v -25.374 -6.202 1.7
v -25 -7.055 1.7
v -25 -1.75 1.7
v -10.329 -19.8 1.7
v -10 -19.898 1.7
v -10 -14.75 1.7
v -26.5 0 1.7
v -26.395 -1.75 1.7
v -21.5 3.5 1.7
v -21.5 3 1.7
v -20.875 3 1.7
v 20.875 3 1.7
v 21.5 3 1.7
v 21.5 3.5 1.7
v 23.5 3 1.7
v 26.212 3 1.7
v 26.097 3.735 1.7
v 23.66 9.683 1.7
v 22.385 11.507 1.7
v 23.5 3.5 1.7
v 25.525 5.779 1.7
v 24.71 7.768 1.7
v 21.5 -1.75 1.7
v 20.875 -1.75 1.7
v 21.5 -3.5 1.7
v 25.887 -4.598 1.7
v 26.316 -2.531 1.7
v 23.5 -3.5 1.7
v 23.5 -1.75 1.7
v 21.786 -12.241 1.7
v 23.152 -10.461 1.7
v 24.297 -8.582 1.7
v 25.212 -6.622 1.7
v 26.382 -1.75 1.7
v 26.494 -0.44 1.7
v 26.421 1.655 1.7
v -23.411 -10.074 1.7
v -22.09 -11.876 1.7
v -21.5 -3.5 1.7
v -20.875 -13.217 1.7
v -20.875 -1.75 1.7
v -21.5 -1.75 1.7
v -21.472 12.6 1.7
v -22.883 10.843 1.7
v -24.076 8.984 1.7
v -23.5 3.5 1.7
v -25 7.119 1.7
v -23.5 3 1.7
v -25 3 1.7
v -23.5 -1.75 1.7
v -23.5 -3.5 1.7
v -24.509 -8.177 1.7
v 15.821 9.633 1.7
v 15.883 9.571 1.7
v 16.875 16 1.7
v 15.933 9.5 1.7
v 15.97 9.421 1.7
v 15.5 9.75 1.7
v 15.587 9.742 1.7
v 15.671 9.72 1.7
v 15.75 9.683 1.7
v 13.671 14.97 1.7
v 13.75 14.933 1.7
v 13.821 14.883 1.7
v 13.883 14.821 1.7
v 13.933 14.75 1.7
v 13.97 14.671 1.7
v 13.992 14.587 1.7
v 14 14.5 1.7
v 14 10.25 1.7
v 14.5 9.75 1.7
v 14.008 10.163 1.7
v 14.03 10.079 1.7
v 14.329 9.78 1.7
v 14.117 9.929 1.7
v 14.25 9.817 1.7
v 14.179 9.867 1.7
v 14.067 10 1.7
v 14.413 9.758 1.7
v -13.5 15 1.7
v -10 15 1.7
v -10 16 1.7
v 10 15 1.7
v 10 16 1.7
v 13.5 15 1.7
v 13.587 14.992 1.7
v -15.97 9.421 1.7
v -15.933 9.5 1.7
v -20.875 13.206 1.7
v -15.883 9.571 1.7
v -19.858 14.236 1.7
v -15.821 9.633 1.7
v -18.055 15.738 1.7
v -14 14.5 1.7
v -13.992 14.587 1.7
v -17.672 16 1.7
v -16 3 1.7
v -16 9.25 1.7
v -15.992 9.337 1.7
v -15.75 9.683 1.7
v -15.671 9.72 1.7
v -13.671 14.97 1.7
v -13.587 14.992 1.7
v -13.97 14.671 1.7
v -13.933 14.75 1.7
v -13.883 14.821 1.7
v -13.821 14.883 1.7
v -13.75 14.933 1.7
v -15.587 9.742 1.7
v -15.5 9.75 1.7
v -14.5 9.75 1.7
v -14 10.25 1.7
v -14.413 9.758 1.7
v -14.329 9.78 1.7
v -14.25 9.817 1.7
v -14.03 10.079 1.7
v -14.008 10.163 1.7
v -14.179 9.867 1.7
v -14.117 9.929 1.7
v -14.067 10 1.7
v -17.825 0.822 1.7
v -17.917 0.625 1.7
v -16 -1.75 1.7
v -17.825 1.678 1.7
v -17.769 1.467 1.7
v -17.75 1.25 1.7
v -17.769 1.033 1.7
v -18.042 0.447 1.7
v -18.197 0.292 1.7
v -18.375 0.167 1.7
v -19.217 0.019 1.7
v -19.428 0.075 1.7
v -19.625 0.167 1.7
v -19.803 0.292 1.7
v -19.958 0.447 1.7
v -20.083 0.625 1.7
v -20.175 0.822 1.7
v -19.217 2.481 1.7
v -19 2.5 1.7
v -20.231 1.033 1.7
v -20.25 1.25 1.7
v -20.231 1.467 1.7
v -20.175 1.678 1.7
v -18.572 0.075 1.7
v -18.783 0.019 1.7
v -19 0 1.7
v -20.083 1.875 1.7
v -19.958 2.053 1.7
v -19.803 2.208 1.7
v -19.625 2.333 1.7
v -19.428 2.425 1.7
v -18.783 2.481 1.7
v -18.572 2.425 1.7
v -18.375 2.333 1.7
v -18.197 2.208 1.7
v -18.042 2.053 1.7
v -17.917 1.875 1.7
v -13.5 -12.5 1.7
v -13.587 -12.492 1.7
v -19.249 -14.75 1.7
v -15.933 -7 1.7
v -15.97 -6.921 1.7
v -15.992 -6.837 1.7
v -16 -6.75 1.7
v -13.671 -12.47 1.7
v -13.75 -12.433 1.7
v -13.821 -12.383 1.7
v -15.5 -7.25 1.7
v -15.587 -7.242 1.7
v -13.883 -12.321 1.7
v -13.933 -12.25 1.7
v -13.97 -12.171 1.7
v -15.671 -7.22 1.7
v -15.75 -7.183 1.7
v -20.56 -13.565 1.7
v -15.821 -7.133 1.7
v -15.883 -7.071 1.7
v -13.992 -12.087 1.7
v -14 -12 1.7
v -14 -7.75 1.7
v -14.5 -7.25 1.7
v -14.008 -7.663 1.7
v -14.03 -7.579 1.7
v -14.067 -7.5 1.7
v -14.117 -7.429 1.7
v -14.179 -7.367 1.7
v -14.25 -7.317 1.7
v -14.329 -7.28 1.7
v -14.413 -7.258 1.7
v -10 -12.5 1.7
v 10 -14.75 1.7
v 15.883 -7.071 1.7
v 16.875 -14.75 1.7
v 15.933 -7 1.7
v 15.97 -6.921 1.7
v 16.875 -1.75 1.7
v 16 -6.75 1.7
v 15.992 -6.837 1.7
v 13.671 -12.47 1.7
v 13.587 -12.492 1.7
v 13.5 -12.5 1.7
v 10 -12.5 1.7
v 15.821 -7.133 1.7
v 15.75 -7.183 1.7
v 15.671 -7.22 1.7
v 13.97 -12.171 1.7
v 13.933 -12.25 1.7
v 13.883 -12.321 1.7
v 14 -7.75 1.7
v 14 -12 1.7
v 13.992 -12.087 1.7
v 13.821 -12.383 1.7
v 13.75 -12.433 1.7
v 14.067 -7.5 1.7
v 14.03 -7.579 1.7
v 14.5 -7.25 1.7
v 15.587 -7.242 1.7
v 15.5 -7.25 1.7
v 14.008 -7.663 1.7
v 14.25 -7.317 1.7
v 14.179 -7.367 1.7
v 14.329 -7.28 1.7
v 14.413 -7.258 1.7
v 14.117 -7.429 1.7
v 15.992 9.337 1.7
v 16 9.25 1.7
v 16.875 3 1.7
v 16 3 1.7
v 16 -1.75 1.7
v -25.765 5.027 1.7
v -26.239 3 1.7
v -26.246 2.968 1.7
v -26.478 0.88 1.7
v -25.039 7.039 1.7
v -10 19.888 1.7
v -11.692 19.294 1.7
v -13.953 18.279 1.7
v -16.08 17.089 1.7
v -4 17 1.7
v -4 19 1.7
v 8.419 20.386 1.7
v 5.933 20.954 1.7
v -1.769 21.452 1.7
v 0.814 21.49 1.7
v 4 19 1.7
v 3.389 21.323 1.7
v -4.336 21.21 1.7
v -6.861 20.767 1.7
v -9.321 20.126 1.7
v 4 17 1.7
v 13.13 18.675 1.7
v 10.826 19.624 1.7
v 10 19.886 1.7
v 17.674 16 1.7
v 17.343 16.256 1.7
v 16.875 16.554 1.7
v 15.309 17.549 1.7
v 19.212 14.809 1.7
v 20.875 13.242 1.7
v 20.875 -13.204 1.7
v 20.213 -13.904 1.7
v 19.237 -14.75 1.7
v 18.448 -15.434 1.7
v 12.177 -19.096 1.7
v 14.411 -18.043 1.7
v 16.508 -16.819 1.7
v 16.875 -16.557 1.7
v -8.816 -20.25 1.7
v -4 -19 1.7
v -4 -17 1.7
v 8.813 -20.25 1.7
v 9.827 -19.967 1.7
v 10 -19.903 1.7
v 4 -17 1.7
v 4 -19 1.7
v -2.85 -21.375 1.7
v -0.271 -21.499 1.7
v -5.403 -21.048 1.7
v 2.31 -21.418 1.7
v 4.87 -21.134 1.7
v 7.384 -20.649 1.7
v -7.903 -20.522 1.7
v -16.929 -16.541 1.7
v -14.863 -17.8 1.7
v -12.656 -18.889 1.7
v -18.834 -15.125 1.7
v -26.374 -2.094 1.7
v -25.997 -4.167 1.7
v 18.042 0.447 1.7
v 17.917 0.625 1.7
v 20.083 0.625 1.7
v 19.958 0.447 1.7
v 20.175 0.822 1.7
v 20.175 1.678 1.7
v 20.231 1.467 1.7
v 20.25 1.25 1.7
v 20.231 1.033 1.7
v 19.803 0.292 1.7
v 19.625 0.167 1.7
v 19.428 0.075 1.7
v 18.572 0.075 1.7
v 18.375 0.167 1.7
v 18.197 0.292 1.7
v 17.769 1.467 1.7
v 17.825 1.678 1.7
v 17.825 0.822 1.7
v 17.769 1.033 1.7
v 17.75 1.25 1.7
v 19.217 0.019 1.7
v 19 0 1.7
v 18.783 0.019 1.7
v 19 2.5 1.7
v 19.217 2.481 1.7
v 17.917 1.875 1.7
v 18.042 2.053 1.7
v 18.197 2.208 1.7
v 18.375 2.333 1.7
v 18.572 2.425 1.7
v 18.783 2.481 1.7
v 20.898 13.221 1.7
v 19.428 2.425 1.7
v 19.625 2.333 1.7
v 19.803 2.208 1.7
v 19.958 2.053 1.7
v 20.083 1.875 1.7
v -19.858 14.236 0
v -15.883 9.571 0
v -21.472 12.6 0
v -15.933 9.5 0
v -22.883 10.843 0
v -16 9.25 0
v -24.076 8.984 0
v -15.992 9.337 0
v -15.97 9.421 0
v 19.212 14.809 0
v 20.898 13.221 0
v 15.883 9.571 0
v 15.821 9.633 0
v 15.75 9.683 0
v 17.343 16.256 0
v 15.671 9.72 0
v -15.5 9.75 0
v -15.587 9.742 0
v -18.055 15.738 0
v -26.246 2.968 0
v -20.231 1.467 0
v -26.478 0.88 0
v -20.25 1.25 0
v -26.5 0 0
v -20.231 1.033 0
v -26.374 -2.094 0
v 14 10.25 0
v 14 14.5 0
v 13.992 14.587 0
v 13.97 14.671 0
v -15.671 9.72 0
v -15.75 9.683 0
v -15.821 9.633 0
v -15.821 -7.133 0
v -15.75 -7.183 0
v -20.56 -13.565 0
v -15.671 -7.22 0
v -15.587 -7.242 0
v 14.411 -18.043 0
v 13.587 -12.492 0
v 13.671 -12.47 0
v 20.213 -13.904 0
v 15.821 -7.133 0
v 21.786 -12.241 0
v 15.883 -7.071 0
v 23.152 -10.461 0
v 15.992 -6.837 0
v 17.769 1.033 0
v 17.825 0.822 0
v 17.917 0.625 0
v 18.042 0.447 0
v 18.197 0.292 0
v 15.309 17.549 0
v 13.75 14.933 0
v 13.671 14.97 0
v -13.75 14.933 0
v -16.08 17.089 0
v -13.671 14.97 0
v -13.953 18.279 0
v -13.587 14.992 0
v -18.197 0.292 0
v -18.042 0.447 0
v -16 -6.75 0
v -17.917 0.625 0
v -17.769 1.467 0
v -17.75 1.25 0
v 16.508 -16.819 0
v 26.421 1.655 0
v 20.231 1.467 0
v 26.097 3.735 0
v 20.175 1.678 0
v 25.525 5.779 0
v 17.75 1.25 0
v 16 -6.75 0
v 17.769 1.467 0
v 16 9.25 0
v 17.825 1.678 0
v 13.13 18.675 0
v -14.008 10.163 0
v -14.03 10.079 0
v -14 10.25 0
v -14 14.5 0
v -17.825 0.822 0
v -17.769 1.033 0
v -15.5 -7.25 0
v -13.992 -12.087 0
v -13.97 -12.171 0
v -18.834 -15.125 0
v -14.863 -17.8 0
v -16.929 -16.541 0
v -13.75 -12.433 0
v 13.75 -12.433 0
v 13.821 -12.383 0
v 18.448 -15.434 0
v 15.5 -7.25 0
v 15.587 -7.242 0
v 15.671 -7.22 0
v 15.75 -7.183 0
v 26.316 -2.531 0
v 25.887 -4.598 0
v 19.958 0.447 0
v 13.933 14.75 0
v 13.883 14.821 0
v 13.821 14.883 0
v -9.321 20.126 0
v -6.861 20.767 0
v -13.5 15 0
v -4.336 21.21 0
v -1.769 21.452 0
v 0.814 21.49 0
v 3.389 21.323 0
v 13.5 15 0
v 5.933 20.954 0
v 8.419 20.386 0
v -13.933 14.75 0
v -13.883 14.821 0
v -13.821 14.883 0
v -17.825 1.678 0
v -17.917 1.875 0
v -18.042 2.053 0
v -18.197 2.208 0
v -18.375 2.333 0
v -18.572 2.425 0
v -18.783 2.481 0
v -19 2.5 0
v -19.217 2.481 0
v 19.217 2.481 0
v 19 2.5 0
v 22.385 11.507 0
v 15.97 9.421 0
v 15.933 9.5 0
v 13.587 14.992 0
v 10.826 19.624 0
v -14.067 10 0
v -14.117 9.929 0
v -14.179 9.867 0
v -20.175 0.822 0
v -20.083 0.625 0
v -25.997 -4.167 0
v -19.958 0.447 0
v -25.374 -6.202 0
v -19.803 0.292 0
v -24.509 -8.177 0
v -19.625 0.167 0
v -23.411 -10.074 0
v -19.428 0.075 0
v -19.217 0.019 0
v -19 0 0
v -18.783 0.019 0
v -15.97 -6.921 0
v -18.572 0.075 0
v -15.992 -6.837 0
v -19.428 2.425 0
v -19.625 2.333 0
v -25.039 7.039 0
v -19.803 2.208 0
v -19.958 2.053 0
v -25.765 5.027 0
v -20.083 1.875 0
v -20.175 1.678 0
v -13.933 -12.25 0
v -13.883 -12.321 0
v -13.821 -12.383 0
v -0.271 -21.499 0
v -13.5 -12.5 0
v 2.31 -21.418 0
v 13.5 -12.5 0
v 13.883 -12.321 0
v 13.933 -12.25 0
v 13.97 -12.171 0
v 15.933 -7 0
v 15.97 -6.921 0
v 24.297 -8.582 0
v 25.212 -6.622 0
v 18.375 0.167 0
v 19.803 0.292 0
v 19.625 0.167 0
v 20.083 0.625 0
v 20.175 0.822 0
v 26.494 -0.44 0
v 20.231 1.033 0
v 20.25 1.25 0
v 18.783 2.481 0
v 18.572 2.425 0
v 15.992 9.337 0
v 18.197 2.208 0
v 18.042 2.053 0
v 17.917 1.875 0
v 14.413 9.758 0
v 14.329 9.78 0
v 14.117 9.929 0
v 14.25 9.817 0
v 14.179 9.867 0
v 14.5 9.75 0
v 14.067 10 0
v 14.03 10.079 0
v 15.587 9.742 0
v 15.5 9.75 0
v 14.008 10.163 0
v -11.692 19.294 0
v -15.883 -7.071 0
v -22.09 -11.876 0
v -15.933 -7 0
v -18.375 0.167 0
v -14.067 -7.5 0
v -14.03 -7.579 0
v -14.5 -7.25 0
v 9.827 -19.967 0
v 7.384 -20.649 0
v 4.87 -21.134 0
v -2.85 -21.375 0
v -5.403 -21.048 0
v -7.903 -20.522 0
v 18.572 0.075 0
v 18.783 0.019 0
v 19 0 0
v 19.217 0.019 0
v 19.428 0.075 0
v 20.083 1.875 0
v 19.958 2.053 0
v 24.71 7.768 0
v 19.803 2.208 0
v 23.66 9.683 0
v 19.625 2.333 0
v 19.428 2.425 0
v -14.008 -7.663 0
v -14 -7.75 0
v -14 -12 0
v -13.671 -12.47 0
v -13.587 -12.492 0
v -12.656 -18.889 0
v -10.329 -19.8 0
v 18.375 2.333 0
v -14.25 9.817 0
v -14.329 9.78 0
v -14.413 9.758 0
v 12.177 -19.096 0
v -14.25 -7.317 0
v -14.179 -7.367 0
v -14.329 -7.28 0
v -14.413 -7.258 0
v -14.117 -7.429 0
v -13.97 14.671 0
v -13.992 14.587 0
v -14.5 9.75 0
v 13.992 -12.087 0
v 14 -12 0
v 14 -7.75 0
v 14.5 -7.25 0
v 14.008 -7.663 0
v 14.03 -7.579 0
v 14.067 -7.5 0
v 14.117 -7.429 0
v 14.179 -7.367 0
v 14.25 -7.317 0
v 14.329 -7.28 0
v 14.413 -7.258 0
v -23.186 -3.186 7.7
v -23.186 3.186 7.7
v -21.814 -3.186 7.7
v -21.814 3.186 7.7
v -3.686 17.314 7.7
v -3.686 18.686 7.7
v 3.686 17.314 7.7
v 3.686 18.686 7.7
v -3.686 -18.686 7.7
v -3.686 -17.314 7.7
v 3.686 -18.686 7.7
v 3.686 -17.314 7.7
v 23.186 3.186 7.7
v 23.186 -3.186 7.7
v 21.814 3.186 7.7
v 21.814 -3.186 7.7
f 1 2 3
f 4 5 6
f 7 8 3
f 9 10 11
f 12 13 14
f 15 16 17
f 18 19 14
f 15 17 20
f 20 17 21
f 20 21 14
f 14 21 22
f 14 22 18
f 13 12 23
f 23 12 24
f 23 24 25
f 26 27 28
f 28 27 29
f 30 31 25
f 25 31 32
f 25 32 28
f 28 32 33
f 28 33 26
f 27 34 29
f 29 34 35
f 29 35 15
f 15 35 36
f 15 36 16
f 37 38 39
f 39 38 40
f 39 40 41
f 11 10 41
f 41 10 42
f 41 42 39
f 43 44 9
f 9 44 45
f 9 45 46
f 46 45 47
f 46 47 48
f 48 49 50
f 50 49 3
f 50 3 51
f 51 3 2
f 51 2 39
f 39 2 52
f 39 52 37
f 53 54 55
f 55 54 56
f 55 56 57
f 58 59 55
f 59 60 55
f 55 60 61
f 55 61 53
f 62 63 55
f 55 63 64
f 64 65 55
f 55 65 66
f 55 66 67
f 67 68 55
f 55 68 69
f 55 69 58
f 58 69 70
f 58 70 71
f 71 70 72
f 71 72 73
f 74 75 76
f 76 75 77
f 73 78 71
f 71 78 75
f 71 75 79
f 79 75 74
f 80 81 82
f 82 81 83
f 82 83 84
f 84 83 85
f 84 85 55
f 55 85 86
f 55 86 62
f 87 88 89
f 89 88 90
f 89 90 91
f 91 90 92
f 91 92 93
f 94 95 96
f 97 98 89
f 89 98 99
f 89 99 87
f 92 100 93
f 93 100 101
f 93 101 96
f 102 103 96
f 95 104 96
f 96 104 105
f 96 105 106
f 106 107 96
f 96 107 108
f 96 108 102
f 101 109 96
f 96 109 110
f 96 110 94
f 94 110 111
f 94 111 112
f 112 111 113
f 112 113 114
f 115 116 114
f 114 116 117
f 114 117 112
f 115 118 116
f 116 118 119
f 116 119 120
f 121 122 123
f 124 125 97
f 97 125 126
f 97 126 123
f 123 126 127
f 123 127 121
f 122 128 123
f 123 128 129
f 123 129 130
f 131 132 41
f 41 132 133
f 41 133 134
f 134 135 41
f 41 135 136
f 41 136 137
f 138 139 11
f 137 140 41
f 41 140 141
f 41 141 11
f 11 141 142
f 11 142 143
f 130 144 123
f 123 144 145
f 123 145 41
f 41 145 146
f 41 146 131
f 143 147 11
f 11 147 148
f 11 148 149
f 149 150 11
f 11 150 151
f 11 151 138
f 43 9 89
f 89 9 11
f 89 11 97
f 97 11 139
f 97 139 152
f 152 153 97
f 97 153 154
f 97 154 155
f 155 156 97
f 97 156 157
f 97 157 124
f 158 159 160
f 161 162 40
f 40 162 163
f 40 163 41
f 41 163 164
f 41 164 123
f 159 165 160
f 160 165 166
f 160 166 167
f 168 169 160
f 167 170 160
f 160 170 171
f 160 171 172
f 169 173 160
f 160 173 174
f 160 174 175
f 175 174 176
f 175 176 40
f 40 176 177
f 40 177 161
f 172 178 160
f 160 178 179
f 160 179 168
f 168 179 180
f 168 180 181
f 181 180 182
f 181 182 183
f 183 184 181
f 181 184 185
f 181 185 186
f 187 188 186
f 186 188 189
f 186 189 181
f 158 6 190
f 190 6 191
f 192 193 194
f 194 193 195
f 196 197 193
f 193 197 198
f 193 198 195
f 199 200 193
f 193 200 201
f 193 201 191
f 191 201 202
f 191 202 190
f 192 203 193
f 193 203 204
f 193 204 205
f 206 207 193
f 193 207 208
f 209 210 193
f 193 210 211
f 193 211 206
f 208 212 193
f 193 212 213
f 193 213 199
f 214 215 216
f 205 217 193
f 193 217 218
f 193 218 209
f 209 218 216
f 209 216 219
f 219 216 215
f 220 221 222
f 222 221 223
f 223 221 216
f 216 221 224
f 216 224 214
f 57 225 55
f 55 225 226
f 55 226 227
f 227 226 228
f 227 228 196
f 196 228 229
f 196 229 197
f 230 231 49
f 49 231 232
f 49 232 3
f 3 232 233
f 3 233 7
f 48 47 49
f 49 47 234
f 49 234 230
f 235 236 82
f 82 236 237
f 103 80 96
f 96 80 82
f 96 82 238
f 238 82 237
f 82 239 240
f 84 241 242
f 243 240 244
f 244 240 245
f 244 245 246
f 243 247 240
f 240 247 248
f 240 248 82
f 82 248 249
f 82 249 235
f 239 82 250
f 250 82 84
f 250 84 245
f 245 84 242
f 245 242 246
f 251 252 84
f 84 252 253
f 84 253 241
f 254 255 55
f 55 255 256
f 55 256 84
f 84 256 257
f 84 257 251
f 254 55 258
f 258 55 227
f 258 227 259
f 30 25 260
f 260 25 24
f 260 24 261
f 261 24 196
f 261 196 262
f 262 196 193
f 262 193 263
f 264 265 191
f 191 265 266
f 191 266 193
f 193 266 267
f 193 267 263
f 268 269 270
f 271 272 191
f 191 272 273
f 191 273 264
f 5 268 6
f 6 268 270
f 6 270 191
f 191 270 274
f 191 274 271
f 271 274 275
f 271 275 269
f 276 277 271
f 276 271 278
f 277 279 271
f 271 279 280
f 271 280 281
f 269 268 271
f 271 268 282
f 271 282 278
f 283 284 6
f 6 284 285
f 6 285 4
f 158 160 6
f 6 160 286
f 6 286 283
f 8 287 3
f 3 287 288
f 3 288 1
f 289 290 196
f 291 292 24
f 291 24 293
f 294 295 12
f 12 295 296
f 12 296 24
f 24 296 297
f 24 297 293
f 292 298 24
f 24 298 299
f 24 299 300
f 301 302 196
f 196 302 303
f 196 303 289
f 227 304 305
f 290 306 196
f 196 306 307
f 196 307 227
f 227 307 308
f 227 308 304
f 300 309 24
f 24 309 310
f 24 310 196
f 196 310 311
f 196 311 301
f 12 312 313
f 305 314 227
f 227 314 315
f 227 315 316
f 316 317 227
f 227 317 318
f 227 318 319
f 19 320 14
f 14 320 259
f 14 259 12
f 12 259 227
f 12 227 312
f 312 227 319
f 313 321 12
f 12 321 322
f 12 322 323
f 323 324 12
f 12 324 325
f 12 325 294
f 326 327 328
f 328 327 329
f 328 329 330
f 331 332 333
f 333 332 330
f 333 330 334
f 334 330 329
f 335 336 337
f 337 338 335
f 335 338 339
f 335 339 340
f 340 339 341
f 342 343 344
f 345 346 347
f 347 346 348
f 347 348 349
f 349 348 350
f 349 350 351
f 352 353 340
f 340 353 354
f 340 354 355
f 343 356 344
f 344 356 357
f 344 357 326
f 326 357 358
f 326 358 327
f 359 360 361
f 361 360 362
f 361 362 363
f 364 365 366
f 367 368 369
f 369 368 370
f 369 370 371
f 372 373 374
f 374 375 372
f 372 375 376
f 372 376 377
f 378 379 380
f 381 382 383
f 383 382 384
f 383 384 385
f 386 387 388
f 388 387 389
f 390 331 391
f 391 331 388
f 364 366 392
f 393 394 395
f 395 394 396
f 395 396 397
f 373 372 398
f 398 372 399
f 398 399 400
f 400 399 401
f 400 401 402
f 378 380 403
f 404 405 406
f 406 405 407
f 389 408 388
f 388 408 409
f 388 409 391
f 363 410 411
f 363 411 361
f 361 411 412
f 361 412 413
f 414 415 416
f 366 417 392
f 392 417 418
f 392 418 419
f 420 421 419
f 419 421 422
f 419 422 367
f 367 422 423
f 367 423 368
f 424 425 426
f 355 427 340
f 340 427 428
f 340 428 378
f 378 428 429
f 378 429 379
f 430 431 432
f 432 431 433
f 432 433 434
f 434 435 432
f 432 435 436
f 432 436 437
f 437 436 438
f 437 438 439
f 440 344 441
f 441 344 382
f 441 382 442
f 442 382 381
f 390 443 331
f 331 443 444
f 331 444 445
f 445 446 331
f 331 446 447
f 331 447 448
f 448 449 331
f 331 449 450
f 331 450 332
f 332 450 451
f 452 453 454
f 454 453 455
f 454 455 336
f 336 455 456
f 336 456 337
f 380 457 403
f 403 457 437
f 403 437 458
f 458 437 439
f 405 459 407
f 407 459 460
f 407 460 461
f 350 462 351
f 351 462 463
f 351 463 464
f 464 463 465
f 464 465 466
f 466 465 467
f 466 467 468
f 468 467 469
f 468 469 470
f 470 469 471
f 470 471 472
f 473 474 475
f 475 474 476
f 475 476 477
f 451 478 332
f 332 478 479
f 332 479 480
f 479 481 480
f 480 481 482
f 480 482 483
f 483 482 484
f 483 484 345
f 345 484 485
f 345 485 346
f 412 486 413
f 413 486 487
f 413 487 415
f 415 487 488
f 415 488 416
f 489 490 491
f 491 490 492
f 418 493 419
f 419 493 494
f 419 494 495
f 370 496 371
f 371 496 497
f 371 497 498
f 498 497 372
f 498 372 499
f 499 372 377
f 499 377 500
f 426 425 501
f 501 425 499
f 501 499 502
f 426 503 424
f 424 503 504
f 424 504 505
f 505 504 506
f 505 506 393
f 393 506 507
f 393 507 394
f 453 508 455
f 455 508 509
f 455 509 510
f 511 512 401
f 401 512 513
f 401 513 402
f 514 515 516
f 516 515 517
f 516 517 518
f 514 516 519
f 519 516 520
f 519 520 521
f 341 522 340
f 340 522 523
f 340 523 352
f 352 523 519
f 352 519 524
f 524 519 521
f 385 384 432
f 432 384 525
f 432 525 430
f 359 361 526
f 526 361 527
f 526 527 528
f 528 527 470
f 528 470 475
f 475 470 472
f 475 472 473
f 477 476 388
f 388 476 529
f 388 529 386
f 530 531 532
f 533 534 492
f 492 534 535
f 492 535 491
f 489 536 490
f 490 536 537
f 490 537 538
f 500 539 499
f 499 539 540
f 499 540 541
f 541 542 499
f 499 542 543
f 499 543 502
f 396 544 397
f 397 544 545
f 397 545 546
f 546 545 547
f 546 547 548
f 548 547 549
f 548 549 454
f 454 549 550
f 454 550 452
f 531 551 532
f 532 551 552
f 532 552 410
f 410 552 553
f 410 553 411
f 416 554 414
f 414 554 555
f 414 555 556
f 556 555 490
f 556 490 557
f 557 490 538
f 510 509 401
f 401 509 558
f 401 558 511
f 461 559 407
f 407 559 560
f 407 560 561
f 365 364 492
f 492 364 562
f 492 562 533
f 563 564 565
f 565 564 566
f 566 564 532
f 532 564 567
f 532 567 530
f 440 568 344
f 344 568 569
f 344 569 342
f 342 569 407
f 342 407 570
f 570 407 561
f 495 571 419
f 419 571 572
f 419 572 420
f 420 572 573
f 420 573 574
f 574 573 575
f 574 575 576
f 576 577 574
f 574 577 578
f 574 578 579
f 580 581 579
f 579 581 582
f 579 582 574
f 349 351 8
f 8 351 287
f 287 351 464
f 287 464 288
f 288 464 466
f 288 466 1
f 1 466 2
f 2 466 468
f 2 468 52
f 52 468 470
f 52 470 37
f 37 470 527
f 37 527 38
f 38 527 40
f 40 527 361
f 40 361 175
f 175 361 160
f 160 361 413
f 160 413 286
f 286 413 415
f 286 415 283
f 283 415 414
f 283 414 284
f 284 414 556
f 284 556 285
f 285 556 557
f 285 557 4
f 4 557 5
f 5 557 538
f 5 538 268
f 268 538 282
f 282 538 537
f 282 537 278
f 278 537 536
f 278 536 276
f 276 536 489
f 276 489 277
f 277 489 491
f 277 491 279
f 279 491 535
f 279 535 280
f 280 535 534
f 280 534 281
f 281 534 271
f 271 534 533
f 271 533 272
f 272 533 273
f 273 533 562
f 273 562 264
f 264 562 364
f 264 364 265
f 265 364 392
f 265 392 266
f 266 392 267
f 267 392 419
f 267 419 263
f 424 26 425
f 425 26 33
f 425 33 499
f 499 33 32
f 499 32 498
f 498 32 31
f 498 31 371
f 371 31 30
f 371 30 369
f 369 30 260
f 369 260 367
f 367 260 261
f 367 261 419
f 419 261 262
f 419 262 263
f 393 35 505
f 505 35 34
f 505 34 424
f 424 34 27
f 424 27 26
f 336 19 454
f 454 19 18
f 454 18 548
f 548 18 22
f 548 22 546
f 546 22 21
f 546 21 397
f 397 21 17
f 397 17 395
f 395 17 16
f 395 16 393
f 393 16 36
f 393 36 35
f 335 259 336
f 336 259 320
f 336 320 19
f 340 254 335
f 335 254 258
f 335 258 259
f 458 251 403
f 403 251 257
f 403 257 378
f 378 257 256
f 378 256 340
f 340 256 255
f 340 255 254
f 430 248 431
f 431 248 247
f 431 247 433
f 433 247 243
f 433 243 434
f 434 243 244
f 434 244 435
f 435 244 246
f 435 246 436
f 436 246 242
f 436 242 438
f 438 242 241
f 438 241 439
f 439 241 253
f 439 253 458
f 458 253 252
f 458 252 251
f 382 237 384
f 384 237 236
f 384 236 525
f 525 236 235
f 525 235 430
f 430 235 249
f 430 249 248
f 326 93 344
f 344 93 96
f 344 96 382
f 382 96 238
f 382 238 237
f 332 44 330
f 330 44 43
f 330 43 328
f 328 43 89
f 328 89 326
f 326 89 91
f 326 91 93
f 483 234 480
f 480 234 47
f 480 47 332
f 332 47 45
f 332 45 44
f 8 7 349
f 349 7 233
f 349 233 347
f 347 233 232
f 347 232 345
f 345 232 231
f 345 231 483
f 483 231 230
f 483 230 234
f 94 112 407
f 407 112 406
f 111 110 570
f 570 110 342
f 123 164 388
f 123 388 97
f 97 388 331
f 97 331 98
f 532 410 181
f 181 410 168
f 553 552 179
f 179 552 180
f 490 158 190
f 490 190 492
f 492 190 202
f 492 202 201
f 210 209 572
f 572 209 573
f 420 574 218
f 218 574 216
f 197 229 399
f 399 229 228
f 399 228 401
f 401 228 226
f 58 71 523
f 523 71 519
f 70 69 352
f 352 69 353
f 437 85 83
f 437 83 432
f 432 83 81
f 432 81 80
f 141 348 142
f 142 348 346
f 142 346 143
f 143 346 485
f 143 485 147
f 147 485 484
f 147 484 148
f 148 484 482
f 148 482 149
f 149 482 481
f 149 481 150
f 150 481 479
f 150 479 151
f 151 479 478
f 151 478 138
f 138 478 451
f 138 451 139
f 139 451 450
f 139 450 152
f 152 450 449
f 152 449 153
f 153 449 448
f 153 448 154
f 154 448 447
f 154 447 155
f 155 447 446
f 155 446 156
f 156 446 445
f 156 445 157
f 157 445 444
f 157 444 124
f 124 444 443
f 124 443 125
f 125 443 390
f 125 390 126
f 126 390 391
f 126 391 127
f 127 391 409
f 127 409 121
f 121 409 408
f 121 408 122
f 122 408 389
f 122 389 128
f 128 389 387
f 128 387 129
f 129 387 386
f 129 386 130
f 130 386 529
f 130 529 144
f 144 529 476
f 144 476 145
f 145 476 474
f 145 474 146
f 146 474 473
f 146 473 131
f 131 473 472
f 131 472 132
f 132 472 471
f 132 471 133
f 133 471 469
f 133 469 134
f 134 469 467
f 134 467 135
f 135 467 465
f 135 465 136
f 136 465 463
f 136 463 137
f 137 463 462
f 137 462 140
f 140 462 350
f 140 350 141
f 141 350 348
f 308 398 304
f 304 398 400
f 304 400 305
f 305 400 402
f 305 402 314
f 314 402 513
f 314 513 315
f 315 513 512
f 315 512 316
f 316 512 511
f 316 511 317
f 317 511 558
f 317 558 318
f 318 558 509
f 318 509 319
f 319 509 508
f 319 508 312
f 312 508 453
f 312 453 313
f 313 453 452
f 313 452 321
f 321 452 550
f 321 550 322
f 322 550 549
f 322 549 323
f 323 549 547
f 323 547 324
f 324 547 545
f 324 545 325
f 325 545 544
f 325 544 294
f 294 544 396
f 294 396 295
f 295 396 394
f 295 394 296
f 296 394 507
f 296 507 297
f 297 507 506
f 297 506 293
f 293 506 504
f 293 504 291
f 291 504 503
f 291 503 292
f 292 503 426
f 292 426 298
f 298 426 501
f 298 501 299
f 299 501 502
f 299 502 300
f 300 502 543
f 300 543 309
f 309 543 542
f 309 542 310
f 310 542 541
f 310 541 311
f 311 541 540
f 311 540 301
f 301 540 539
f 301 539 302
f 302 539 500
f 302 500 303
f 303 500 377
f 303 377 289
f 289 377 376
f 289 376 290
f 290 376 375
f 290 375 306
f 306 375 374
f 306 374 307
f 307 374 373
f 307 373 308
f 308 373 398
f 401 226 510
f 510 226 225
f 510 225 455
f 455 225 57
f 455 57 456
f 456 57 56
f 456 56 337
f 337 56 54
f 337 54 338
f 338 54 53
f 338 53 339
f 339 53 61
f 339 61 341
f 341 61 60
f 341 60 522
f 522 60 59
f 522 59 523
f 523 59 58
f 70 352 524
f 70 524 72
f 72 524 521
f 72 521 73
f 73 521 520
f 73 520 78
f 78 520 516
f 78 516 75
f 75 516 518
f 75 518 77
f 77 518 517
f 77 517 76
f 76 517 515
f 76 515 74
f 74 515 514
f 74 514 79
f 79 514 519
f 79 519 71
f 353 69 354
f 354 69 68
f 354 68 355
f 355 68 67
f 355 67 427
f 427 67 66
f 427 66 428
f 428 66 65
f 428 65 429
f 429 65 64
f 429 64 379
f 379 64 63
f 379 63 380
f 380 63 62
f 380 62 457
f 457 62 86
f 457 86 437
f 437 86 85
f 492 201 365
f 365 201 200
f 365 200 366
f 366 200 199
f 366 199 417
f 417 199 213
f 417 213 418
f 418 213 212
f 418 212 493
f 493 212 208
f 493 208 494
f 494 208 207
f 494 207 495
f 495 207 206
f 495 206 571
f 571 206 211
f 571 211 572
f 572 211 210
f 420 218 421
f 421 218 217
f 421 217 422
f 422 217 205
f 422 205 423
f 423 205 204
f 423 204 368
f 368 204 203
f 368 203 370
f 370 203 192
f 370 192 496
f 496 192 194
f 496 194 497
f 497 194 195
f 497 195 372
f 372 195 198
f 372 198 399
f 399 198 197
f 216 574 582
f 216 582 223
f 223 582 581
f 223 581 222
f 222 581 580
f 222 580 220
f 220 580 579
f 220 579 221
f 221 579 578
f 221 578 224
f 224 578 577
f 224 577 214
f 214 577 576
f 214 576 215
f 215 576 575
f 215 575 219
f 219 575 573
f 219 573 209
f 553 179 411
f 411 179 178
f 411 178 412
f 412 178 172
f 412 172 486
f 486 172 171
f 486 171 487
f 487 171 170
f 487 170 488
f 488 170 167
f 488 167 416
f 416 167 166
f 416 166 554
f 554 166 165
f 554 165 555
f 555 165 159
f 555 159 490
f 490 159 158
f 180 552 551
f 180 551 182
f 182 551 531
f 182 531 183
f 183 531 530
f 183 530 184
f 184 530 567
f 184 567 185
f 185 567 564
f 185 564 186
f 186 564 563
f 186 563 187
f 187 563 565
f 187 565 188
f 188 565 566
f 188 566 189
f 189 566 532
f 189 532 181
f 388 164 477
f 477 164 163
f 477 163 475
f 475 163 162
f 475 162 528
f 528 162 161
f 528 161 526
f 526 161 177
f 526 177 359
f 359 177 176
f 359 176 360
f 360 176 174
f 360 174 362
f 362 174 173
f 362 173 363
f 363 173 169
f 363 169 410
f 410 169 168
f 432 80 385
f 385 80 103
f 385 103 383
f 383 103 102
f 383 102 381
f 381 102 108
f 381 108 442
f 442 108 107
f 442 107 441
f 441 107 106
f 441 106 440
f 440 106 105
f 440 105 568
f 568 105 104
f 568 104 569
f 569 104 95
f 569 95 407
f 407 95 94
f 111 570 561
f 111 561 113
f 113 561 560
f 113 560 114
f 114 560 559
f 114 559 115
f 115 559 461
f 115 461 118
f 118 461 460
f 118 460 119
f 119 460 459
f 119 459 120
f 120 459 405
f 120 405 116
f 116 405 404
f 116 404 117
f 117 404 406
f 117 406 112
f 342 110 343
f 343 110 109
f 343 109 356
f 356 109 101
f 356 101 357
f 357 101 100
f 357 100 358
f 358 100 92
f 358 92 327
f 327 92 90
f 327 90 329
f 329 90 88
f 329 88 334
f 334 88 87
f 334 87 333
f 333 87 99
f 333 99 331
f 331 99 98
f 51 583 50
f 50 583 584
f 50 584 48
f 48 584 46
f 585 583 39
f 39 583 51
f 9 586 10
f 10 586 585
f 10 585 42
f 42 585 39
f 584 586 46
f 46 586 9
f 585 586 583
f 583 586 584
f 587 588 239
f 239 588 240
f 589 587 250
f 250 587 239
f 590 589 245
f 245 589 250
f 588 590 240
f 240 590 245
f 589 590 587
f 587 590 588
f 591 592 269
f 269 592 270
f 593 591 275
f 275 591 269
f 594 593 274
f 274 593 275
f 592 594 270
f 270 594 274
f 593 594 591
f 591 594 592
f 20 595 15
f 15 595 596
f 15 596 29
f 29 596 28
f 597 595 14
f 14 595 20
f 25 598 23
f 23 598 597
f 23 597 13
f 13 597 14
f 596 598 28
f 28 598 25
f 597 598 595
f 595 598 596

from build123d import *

# Parameters (mm, degrees)
SKETCH1_RX          = 26.5
SKETCH1_RY          = 21.5
SKETCH1_R           = 1.25
BOSS_EXTRUDE1_DEPTH = 1.7
FILLET1_R           = 0.5
SKETCH2_W           = 2
SKETCH2_H           = 7
SKETCH2_W_2         = 8
SKETCH2_H_2         = 2
BOSS_EXTRUDE2_DEPTH = 6
BOSS_EXTRUDE2_TAPER = 3


with BuildPart() as part:
    # Sketch1 → Boss-Extrude1 (new body)
    with BuildSketch(Plane.XY):
        with Locations(Location((0, 0), (0, 0, 180))):
            Ellipse(SKETCH1_RX, SKETCH1_RY)
        with Locations((-19, 1.25)):
            Circle(SKETCH1_R, mode=Mode.SUBTRACT)
        with Locations((19, 1.25)):
            Circle(SKETCH1_R, mode=Mode.SUBTRACT)
        Polygon((-14, 15), (14, 15), (14, 9.75), (16, 9.75), (16, -7.25), (14, -7.25), (14, -12.5), (-14, -12.5), (-14, -7.25), (-16, -7.25), (-16, 9.75), (-14, 9.75), align=None, mode=Mode.SUBTRACT)
    extrude(amount=BOSS_EXTRUDE1_DEPTH)

    # Fillet1
    fillet1_edges = [part.edges().sort_by_distance(p)[0] for p in [
        (-14, 15, 0.85),
        (-14, 9.75, 0.85),
        (-16, 9.75, 0.85),
        (-16, -7.25, 0.85),
        (-14, -7.25, 0.85),
        (-14, -12.5, 0.85),
        (14, -12.5, 0.85),
        (14, -7.25, 0.85),
        (16, -7.25, 0.85),
        (16, 9.75, 0.85),
        (14, 9.75, 0.85),
        (14, 15, 0.85),
    ]]
    fillet(fillet1_edges, radius=FILLET1_R)

    # Sketch2 → Boss-Extrude2 (add)
    with BuildSketch(Plane.XY.offset(1.7)):
        with Locations((-22.5, 0)):
            Rectangle(SKETCH2_W, SKETCH2_H)
        with Locations((0, 18)):
            Rectangle(SKETCH2_W_2, SKETCH2_H_2)
        with Locations((0, -18)):
            Rectangle(SKETCH2_W_2, SKETCH2_H_2)
        with Locations((22.5, 0)):
            Rectangle(SKETCH2_W, SKETCH2_H)
    extrude(amount=BOSS_EXTRUDE2_DEPTH, taper=BOSS_EXTRUDE2_TAPER)


solid = part.part
